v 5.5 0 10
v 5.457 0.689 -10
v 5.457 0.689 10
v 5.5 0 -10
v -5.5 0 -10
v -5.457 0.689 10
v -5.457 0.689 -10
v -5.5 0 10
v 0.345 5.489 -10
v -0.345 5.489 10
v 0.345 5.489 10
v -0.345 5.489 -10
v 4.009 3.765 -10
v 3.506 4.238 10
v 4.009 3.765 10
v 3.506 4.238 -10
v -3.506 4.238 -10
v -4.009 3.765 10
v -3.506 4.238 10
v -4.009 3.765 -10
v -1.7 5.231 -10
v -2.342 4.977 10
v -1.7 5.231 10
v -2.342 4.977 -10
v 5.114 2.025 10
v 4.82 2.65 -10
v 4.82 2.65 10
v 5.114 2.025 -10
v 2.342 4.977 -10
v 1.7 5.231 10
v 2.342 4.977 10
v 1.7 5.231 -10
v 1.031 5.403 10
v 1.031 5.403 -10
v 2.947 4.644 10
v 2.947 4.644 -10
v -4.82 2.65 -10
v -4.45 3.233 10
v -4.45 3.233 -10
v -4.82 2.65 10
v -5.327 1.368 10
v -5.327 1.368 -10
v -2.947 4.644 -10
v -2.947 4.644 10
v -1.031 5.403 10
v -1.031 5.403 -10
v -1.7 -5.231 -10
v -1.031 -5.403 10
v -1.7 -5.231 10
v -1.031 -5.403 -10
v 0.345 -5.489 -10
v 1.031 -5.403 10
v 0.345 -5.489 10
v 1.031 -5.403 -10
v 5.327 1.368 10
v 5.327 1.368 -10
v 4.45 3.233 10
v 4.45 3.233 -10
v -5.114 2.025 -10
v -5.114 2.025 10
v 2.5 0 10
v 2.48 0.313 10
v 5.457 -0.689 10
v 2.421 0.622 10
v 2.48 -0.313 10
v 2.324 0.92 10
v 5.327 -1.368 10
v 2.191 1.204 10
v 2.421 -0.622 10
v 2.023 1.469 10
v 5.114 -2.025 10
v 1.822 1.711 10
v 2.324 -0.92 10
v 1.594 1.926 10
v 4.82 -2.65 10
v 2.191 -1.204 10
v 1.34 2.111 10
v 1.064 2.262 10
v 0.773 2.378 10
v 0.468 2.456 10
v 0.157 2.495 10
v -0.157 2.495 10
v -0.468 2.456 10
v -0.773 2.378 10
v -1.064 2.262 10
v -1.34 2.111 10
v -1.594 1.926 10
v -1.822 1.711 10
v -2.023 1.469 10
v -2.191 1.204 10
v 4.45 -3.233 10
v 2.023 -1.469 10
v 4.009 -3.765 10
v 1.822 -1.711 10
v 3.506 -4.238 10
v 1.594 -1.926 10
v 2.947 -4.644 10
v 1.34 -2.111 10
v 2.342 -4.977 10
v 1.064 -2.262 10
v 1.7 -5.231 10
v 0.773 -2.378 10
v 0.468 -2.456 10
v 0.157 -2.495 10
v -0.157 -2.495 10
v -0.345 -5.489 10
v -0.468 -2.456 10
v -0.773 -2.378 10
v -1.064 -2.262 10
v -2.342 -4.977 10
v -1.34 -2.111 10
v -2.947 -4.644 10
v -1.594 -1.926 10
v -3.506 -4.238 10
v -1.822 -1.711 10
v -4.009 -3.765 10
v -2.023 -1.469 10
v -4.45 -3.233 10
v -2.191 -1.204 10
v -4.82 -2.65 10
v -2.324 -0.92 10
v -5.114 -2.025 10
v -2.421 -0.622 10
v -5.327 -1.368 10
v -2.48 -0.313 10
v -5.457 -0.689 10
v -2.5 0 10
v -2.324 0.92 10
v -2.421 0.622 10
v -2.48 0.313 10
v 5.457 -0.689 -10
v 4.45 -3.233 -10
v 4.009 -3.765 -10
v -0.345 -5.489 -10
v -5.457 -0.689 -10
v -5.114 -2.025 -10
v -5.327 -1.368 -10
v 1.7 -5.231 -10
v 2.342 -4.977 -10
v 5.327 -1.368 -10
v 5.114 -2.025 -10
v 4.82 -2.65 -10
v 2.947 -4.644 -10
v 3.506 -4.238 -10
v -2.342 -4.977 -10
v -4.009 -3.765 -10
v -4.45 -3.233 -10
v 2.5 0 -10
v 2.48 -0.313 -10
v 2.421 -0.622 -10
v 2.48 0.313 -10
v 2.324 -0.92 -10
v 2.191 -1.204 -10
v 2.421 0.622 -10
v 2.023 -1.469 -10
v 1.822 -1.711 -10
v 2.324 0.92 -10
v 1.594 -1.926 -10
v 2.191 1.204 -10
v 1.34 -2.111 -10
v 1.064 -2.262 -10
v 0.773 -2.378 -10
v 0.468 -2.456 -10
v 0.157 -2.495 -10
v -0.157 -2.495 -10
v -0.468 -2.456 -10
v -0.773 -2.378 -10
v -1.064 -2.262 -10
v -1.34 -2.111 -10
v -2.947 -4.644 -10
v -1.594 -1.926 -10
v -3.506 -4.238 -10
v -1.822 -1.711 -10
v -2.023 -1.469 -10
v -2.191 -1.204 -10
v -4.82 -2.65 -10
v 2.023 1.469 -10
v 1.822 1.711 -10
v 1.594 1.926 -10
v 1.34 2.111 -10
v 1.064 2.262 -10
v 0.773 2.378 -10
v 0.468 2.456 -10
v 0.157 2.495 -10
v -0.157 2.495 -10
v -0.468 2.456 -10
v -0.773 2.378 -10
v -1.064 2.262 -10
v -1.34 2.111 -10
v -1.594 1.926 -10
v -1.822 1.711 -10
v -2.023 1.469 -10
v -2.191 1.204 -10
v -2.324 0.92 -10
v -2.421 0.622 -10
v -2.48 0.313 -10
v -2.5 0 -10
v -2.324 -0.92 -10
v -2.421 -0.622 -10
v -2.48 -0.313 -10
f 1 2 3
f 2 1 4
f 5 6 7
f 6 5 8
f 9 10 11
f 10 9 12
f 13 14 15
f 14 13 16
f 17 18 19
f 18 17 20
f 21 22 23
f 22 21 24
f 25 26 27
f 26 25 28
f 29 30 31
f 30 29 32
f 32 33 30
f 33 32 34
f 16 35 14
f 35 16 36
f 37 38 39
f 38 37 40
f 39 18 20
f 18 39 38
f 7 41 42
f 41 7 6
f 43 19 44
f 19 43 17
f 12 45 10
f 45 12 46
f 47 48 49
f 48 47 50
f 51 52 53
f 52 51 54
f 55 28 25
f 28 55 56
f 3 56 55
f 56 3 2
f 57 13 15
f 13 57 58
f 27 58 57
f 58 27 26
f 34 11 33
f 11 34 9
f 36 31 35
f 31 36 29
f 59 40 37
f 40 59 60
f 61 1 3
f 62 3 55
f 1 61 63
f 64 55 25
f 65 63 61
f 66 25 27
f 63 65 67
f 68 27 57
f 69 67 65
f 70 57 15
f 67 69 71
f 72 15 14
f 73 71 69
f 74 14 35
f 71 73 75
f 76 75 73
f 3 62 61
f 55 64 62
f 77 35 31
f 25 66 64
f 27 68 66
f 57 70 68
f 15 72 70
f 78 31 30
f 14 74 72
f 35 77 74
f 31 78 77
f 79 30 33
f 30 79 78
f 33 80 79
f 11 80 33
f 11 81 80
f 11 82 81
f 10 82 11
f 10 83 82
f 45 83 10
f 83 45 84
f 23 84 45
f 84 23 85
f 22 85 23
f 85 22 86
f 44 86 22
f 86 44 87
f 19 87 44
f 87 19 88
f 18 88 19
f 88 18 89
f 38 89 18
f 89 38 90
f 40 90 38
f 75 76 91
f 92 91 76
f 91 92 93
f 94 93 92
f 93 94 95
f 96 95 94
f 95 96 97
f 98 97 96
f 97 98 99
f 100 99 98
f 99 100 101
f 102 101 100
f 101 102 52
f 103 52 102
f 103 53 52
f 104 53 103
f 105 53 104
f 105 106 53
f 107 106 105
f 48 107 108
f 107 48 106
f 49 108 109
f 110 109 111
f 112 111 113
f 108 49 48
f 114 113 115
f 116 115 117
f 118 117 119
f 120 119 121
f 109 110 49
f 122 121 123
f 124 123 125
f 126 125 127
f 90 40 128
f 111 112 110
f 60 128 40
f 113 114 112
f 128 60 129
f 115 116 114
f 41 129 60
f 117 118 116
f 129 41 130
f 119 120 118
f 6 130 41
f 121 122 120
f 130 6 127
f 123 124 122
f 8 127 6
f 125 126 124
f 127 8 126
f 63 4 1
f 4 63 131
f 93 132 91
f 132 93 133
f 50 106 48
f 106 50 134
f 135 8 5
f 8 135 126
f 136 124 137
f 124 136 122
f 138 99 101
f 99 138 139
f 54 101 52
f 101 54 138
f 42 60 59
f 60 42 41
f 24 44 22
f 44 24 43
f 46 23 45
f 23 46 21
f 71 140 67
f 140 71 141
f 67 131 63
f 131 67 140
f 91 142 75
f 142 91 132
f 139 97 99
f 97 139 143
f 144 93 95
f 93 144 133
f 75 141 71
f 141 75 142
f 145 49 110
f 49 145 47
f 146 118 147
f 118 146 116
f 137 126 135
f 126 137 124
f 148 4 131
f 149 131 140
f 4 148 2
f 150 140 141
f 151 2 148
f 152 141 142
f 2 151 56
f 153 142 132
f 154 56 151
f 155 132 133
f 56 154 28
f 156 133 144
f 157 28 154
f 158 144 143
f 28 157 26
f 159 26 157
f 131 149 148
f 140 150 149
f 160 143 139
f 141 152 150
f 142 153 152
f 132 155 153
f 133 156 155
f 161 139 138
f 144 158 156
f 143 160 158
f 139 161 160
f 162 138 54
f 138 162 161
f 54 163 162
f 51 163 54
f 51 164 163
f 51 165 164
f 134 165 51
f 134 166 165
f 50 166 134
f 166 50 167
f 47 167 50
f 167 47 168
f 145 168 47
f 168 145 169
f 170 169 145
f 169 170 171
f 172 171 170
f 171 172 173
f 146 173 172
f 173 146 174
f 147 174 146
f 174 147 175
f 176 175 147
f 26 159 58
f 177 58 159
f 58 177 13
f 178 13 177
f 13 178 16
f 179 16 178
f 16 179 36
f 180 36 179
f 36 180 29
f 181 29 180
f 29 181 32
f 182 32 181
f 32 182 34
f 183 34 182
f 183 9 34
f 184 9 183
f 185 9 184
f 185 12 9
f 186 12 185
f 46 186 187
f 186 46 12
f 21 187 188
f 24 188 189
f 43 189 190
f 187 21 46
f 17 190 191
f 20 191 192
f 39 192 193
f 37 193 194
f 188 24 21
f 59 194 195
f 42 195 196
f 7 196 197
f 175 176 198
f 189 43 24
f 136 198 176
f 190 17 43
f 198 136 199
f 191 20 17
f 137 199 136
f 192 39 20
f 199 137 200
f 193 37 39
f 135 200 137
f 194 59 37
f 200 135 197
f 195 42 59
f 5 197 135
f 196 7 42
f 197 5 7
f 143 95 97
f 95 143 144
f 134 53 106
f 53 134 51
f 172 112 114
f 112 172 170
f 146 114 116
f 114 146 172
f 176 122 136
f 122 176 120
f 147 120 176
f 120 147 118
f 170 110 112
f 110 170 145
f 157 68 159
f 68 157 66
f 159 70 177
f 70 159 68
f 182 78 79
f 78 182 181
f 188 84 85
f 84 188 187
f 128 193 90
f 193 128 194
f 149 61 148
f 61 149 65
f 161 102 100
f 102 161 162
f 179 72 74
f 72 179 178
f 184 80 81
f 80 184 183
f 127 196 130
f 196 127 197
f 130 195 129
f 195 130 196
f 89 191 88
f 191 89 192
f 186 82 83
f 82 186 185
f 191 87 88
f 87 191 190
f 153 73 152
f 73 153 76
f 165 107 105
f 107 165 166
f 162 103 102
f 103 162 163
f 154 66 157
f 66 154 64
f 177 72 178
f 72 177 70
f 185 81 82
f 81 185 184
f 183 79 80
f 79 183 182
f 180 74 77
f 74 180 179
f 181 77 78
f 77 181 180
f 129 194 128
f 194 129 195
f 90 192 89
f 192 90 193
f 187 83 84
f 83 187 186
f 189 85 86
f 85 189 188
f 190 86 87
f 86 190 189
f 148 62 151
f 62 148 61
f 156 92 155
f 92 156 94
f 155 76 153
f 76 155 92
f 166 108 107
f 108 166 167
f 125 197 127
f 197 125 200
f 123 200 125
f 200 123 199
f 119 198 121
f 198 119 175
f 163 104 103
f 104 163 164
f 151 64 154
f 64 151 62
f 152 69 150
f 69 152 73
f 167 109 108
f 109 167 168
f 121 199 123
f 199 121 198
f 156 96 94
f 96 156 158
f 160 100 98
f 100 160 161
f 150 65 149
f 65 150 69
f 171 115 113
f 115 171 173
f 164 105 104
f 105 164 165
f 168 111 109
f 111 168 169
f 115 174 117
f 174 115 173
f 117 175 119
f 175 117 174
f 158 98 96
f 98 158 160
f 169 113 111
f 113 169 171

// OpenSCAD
$fn = 50;


difference() {
	union() {
		translate(v = [0, 0, -10.0000000000]) {
			cylinder(h = 20, r = 5.5000000000);
		}
	}
	union() {
		translate(v = [0, 0, -100.0000000000]) {
			cylinder(h = 200, r = 2.5000000000);
		}
	}
}
